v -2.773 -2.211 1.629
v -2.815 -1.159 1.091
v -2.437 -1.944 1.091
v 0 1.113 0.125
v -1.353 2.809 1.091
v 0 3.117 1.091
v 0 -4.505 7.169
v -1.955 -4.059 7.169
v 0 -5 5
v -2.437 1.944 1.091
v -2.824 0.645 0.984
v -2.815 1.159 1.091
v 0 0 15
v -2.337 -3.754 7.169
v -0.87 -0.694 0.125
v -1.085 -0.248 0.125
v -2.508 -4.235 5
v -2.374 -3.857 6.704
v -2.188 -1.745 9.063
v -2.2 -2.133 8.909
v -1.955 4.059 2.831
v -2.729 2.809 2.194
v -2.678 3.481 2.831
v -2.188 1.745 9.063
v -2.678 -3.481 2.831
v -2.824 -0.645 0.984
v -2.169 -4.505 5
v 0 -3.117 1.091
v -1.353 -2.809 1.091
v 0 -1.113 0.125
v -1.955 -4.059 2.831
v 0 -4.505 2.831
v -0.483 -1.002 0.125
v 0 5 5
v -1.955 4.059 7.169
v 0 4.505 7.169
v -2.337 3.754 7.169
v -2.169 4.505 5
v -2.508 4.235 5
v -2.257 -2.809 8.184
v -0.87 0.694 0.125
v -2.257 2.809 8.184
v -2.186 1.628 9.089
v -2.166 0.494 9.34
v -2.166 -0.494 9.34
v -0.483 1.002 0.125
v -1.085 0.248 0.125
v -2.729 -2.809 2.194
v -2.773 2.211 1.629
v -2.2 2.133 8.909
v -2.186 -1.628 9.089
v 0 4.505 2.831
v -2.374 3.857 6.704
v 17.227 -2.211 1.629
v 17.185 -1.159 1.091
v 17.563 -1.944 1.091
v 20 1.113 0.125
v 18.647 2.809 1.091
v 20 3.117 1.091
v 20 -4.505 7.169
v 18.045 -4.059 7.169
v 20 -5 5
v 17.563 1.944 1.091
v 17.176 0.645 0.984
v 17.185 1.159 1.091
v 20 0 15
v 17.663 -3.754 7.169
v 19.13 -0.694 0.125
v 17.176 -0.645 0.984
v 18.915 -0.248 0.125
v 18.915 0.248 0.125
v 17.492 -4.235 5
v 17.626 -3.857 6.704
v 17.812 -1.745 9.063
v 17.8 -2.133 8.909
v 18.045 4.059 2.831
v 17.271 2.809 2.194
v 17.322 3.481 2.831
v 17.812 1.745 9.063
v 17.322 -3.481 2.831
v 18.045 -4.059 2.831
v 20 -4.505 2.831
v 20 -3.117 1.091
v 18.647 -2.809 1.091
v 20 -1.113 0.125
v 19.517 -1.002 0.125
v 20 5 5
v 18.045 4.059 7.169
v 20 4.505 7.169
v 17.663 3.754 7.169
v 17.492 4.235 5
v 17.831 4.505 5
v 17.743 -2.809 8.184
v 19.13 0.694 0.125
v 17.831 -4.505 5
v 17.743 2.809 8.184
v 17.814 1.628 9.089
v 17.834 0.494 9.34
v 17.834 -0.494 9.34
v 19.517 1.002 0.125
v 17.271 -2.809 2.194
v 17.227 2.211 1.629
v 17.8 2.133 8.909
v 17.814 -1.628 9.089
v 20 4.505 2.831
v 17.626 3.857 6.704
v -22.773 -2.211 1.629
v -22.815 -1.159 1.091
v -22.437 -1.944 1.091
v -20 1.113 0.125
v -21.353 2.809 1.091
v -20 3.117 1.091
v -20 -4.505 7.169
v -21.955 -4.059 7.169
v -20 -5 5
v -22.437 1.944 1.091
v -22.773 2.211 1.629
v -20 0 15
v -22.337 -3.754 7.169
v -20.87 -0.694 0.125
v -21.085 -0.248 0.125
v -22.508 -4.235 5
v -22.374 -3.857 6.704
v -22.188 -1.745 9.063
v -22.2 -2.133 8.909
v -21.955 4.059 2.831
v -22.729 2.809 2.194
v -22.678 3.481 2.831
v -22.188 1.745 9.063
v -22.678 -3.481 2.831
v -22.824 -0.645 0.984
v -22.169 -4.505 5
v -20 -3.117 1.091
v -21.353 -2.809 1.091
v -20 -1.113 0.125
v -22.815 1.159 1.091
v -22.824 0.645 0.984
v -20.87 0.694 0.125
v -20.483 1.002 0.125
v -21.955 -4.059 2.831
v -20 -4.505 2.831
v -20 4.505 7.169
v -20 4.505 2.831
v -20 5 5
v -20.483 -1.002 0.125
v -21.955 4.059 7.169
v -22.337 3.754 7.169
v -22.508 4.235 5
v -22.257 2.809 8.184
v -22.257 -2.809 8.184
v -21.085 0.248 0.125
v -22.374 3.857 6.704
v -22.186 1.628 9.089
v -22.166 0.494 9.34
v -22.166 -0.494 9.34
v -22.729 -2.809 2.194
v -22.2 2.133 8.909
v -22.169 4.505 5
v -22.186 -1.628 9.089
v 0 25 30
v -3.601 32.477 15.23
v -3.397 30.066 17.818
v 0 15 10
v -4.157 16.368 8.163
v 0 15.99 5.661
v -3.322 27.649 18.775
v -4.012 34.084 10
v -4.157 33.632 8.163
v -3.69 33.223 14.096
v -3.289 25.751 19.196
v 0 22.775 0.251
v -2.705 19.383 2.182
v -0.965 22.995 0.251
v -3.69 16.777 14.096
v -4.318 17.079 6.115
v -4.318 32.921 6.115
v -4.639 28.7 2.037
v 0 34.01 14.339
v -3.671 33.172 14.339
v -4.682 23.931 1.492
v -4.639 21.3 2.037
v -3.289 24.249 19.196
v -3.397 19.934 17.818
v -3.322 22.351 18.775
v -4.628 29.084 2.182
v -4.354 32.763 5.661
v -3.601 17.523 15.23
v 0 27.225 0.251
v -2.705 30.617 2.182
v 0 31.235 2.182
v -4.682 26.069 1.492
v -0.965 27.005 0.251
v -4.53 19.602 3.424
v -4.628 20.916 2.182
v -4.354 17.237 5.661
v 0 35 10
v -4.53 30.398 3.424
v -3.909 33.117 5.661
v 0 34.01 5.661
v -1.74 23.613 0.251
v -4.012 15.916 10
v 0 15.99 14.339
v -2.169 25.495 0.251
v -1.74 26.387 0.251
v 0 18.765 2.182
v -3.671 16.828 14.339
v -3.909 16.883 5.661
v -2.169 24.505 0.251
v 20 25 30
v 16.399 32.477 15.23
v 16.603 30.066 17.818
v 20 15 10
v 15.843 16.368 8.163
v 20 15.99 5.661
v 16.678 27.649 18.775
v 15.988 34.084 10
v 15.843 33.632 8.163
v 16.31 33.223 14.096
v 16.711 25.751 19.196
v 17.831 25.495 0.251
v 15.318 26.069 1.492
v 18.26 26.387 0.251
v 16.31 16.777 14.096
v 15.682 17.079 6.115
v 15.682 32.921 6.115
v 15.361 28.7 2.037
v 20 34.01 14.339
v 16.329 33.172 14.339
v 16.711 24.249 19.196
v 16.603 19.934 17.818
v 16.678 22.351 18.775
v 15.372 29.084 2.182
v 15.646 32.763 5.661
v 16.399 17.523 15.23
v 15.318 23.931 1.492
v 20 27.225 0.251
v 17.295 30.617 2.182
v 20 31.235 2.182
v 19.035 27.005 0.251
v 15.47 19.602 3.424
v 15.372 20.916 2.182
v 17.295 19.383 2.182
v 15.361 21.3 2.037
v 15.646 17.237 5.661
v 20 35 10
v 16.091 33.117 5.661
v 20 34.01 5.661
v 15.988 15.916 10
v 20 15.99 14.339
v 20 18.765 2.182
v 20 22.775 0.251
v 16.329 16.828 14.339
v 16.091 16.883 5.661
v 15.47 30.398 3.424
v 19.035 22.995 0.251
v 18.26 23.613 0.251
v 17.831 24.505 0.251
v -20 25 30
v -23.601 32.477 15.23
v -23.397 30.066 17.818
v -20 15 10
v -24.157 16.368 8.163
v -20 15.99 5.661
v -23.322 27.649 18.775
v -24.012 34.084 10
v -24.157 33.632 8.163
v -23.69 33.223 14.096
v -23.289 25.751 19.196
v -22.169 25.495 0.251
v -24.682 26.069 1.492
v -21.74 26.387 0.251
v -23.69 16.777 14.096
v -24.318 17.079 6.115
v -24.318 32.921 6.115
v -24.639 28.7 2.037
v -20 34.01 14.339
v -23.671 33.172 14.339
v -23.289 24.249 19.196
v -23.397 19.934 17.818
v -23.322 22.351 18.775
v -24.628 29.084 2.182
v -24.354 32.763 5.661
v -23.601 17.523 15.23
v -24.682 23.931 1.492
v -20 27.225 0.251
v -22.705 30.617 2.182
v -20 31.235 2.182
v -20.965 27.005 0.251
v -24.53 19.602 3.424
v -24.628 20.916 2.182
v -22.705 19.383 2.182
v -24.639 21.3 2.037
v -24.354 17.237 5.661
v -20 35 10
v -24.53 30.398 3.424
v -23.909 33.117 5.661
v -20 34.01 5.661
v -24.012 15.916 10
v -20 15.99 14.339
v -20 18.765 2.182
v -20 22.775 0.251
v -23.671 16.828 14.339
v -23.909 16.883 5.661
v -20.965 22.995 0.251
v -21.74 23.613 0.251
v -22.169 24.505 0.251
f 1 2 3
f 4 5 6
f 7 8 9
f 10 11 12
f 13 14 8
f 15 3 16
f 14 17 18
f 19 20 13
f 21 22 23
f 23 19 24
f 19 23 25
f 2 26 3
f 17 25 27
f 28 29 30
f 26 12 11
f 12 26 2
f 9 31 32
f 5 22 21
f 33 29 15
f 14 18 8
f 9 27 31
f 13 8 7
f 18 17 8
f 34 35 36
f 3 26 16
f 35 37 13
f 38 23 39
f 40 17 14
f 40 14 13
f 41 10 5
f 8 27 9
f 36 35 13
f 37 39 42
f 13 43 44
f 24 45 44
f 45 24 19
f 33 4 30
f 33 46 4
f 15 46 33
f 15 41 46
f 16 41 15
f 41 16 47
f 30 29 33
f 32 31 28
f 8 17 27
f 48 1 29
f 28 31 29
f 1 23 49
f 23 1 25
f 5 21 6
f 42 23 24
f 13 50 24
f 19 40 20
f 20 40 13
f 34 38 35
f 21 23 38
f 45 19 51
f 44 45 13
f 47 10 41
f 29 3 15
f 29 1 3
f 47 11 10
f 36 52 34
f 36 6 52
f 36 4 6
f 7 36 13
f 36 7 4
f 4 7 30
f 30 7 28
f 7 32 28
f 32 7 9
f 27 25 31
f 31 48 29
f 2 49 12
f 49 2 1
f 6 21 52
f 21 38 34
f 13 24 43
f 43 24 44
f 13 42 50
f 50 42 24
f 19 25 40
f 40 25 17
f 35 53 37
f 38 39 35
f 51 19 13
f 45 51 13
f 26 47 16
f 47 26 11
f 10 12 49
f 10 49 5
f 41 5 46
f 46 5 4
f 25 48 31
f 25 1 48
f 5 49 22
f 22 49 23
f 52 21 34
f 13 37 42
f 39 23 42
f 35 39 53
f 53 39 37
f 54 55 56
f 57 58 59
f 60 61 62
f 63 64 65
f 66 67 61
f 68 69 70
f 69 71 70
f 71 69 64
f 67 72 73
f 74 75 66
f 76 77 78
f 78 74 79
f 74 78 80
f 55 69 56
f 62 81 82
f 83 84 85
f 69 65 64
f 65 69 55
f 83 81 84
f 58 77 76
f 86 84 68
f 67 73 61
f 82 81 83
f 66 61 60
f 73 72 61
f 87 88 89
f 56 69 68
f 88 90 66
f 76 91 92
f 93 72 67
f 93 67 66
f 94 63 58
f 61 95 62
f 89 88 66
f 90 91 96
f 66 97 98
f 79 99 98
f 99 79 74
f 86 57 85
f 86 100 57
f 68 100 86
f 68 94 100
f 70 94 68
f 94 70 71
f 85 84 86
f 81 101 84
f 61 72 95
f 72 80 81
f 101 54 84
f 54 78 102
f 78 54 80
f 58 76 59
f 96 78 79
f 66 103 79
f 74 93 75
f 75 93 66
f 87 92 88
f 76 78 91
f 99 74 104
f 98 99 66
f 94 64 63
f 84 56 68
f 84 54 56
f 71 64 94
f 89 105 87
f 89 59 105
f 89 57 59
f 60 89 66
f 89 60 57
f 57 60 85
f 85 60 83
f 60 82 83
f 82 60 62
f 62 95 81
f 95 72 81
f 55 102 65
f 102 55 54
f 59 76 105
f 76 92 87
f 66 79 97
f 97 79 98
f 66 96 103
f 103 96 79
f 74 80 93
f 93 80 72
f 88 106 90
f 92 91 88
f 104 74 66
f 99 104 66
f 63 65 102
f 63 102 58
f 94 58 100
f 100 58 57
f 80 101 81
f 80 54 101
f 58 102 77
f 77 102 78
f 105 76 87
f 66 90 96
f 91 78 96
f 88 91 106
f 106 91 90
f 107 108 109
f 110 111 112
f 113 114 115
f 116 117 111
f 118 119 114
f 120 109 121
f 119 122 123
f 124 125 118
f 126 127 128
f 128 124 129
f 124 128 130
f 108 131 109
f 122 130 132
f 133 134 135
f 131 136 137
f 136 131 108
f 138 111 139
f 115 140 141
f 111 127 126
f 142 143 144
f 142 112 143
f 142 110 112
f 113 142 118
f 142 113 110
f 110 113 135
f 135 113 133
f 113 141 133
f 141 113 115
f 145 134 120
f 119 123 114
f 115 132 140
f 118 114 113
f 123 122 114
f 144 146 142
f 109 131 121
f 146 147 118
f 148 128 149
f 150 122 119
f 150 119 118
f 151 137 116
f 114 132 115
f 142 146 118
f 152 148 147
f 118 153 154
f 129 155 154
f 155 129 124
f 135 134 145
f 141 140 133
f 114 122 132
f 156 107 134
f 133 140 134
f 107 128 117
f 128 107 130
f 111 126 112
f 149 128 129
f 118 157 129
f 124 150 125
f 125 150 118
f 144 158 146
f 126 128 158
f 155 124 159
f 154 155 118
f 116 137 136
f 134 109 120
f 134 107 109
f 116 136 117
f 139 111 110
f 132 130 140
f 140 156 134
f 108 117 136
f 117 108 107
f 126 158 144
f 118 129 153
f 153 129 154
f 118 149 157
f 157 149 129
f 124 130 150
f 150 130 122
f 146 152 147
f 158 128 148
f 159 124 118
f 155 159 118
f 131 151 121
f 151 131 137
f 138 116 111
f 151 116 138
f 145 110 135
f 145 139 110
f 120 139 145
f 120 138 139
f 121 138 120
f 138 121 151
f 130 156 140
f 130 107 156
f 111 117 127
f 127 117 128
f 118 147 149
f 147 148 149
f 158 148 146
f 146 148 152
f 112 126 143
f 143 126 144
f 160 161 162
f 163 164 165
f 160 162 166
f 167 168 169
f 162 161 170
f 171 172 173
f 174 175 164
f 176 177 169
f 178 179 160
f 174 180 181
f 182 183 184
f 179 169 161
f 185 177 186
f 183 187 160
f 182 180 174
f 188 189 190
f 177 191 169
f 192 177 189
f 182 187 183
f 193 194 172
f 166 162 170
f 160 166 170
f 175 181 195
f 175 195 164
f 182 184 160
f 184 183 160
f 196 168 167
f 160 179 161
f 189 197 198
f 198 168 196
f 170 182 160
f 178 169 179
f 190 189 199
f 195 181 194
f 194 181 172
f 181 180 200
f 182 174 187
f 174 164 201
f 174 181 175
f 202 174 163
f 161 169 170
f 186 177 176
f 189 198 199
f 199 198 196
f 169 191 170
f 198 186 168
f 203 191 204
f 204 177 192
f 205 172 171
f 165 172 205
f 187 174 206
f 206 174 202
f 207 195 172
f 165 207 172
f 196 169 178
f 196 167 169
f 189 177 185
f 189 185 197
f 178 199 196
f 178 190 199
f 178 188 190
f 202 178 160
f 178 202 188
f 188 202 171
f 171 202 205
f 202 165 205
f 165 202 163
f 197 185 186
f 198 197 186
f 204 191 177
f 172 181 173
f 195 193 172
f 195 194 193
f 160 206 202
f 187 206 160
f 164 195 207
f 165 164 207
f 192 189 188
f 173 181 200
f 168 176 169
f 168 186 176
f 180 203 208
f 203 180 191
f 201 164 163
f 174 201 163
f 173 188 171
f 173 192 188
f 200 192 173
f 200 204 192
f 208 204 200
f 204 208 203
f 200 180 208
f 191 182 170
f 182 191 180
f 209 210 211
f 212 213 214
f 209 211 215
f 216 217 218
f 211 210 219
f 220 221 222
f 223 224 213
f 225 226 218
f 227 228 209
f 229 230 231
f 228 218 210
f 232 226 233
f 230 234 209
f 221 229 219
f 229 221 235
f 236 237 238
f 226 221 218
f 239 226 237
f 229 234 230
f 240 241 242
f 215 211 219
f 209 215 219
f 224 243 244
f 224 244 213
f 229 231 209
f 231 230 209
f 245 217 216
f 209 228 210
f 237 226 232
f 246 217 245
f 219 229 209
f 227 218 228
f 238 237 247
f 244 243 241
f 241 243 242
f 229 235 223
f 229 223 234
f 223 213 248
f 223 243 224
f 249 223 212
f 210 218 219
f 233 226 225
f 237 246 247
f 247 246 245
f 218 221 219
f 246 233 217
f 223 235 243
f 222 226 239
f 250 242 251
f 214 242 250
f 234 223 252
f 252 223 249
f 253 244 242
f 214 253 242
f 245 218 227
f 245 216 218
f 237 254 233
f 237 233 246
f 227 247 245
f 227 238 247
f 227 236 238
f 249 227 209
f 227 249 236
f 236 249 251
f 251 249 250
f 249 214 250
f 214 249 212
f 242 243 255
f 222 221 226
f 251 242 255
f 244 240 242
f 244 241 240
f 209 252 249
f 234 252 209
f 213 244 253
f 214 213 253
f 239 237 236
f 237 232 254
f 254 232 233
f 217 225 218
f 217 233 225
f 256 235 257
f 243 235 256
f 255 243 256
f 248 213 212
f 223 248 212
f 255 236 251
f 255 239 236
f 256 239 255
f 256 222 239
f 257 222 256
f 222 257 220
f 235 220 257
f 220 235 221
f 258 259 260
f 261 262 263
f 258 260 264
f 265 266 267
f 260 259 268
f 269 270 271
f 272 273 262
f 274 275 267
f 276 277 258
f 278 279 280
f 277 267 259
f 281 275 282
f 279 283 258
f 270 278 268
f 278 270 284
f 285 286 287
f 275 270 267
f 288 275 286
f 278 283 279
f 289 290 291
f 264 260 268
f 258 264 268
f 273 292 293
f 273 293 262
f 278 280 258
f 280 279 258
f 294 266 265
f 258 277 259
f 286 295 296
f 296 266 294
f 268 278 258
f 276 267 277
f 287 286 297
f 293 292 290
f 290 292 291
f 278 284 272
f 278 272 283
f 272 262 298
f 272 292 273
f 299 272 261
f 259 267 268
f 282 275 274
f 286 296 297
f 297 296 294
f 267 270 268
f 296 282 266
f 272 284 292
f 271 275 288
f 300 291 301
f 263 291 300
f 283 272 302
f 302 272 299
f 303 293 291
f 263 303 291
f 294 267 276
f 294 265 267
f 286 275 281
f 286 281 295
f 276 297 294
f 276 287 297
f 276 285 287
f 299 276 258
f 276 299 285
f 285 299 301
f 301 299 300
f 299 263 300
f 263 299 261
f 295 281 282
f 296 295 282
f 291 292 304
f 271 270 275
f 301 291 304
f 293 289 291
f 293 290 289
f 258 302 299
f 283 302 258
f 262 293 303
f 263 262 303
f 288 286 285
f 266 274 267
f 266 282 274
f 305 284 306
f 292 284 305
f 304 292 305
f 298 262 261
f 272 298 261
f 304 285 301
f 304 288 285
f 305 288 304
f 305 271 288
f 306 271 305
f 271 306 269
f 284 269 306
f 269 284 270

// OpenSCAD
// file: common.scad
/*********************************************
* Common modules for Scepter of Light
* Phil McCarthy, 2021
* 
* Distributed under the terms of the GPLv3 license:
* https://www.gnu.org/licenses/gpl-3.0.en.html
****************************************************/

// render a tear shaped gem
module tear_gem(radius, tip_offset, height) {
    hull($fn=14) {
        difference() {
            union() {
                sphere(r=radius);
                cylinder(h=tip_offset, r1=radius/2, r2=0);
            }
            translate([-radius,-radius,-radius]) cube([radius*2, radius, radius+tip_offset]);
            rotate([4.5,0,0]) translate([-radius,height,-radius]) cube([radius*2, radius-height, radius+tip_offset]);
        };
    };
}

// render a seat for a tear gem
module tear_gem_seat(radius, tip_offset, height) {
    render() {
        difference() {
            tear_gem_seat_outline(radius, tip_offset, height);
            translate([0,0,1]) linear_extrude(height) {
                gem_2d(radius+0.25, tip_offset+0.25);
            };
        }
    }
}

module tear_gem_seat_outline(radius, tip_offset, height) {
    render() {
        difference() {
            minkowski(convexity=3) {
                sphere(r=height/2);
                linear_extrude(1) {
                    gem_2d(radius, tip_offset, 50);
                }
            };
            translate([-radius*2, -radius*2, -height]) cube([(radius+tip_offset)*2, radius*4, height]);
        }
    }
}

module gem_2d(radius, tip_offset, numsides=14) {
    hull($fn=numsides) {
        circle(r=radius);
        translate([tip_offset-((radius/10)/2), 0, 0]) circle(r=radius/10, $fn=3);
    }
}

// center a cube in the xy plane
module centred_xy_cube(dims) {
    translate([-(dims.x/2), -(dims.y/2), 0]) cube(dims);
}

// put child objects in a ring - quite proud of this one :)
module make_ring(ringradius, count) {
    drawangle = 360/count;
    for(item = [0 : count]) {
        a = drawangle * item;
        translate([ringradius * cos(a), ringradius * sin(a)]) rotate([0,0,270+a]) children();
    }
}

// yum
module pie(angle, radius, depth) {
    rotate_extrude(angle = angle, convexity = 10) square([radius,depth]);
}

module pill(xlen, ylen, depth) {
    translate([(ylen/2)-(xlen/2),0,0])
    linear_extrude(depth, true)
    hull() {
        circle(d=ylen);
        translate([xlen-ylen,0,0]) circle(d=ylen);
    }
}

module curve_fastener() {
    scale([1,2,1]){
        translate([0,-2,0]) cube([1,4,10]);
        translate([2,0,0]) rotate([0,0,60]) cylinder(h=10,d=4, $fn=3);
    }
}

module wing_fastener() {
    rotate([0,0,90])
    scale([1,2,1]){
        translate([0,-2,0]) cube([3,4,15]);
        translate([4,0,0]) rotate([0,0,60]) cylinder(h=15,d=4, $fn=3);
    }
}
// main file
use <common.scad>

/****************************************************
* Scepter of Light Tear Gems design
* Phil McCarthy, 2021
* 
* Distributed under the terms of the GPLv3 license:
* https://www.gnu.org/licenses/gpl-3.0.en.html
****************************************************/

// gems for hilt - recommend 100% infill
translate([0,0,5]) rotate([0,0,90]) tear_gem(5,10,2.5);
translate([20,0,5]) rotate([0,0,90]) tear_gem(5,10,2.5);
translate([-20,0,5]) rotate([0,0,90]) tear_gem(5,10,2.5);

// gems for head - recommend printing hollow with 0.2mm layer height,
// 1 perimeter and 1 bottom/top layer, 0% infill, and then drilling hole into back for LED once finished.
translate([0,25,10]) rotate([0,0,90]) tear_gem(10,20,4);
translate([20,25,10]) rotate([0,0,90]) tear_gem(10,20,4);
translate([-20,25,10]) rotate([0,0,90]) tear_gem(10,20,4);
